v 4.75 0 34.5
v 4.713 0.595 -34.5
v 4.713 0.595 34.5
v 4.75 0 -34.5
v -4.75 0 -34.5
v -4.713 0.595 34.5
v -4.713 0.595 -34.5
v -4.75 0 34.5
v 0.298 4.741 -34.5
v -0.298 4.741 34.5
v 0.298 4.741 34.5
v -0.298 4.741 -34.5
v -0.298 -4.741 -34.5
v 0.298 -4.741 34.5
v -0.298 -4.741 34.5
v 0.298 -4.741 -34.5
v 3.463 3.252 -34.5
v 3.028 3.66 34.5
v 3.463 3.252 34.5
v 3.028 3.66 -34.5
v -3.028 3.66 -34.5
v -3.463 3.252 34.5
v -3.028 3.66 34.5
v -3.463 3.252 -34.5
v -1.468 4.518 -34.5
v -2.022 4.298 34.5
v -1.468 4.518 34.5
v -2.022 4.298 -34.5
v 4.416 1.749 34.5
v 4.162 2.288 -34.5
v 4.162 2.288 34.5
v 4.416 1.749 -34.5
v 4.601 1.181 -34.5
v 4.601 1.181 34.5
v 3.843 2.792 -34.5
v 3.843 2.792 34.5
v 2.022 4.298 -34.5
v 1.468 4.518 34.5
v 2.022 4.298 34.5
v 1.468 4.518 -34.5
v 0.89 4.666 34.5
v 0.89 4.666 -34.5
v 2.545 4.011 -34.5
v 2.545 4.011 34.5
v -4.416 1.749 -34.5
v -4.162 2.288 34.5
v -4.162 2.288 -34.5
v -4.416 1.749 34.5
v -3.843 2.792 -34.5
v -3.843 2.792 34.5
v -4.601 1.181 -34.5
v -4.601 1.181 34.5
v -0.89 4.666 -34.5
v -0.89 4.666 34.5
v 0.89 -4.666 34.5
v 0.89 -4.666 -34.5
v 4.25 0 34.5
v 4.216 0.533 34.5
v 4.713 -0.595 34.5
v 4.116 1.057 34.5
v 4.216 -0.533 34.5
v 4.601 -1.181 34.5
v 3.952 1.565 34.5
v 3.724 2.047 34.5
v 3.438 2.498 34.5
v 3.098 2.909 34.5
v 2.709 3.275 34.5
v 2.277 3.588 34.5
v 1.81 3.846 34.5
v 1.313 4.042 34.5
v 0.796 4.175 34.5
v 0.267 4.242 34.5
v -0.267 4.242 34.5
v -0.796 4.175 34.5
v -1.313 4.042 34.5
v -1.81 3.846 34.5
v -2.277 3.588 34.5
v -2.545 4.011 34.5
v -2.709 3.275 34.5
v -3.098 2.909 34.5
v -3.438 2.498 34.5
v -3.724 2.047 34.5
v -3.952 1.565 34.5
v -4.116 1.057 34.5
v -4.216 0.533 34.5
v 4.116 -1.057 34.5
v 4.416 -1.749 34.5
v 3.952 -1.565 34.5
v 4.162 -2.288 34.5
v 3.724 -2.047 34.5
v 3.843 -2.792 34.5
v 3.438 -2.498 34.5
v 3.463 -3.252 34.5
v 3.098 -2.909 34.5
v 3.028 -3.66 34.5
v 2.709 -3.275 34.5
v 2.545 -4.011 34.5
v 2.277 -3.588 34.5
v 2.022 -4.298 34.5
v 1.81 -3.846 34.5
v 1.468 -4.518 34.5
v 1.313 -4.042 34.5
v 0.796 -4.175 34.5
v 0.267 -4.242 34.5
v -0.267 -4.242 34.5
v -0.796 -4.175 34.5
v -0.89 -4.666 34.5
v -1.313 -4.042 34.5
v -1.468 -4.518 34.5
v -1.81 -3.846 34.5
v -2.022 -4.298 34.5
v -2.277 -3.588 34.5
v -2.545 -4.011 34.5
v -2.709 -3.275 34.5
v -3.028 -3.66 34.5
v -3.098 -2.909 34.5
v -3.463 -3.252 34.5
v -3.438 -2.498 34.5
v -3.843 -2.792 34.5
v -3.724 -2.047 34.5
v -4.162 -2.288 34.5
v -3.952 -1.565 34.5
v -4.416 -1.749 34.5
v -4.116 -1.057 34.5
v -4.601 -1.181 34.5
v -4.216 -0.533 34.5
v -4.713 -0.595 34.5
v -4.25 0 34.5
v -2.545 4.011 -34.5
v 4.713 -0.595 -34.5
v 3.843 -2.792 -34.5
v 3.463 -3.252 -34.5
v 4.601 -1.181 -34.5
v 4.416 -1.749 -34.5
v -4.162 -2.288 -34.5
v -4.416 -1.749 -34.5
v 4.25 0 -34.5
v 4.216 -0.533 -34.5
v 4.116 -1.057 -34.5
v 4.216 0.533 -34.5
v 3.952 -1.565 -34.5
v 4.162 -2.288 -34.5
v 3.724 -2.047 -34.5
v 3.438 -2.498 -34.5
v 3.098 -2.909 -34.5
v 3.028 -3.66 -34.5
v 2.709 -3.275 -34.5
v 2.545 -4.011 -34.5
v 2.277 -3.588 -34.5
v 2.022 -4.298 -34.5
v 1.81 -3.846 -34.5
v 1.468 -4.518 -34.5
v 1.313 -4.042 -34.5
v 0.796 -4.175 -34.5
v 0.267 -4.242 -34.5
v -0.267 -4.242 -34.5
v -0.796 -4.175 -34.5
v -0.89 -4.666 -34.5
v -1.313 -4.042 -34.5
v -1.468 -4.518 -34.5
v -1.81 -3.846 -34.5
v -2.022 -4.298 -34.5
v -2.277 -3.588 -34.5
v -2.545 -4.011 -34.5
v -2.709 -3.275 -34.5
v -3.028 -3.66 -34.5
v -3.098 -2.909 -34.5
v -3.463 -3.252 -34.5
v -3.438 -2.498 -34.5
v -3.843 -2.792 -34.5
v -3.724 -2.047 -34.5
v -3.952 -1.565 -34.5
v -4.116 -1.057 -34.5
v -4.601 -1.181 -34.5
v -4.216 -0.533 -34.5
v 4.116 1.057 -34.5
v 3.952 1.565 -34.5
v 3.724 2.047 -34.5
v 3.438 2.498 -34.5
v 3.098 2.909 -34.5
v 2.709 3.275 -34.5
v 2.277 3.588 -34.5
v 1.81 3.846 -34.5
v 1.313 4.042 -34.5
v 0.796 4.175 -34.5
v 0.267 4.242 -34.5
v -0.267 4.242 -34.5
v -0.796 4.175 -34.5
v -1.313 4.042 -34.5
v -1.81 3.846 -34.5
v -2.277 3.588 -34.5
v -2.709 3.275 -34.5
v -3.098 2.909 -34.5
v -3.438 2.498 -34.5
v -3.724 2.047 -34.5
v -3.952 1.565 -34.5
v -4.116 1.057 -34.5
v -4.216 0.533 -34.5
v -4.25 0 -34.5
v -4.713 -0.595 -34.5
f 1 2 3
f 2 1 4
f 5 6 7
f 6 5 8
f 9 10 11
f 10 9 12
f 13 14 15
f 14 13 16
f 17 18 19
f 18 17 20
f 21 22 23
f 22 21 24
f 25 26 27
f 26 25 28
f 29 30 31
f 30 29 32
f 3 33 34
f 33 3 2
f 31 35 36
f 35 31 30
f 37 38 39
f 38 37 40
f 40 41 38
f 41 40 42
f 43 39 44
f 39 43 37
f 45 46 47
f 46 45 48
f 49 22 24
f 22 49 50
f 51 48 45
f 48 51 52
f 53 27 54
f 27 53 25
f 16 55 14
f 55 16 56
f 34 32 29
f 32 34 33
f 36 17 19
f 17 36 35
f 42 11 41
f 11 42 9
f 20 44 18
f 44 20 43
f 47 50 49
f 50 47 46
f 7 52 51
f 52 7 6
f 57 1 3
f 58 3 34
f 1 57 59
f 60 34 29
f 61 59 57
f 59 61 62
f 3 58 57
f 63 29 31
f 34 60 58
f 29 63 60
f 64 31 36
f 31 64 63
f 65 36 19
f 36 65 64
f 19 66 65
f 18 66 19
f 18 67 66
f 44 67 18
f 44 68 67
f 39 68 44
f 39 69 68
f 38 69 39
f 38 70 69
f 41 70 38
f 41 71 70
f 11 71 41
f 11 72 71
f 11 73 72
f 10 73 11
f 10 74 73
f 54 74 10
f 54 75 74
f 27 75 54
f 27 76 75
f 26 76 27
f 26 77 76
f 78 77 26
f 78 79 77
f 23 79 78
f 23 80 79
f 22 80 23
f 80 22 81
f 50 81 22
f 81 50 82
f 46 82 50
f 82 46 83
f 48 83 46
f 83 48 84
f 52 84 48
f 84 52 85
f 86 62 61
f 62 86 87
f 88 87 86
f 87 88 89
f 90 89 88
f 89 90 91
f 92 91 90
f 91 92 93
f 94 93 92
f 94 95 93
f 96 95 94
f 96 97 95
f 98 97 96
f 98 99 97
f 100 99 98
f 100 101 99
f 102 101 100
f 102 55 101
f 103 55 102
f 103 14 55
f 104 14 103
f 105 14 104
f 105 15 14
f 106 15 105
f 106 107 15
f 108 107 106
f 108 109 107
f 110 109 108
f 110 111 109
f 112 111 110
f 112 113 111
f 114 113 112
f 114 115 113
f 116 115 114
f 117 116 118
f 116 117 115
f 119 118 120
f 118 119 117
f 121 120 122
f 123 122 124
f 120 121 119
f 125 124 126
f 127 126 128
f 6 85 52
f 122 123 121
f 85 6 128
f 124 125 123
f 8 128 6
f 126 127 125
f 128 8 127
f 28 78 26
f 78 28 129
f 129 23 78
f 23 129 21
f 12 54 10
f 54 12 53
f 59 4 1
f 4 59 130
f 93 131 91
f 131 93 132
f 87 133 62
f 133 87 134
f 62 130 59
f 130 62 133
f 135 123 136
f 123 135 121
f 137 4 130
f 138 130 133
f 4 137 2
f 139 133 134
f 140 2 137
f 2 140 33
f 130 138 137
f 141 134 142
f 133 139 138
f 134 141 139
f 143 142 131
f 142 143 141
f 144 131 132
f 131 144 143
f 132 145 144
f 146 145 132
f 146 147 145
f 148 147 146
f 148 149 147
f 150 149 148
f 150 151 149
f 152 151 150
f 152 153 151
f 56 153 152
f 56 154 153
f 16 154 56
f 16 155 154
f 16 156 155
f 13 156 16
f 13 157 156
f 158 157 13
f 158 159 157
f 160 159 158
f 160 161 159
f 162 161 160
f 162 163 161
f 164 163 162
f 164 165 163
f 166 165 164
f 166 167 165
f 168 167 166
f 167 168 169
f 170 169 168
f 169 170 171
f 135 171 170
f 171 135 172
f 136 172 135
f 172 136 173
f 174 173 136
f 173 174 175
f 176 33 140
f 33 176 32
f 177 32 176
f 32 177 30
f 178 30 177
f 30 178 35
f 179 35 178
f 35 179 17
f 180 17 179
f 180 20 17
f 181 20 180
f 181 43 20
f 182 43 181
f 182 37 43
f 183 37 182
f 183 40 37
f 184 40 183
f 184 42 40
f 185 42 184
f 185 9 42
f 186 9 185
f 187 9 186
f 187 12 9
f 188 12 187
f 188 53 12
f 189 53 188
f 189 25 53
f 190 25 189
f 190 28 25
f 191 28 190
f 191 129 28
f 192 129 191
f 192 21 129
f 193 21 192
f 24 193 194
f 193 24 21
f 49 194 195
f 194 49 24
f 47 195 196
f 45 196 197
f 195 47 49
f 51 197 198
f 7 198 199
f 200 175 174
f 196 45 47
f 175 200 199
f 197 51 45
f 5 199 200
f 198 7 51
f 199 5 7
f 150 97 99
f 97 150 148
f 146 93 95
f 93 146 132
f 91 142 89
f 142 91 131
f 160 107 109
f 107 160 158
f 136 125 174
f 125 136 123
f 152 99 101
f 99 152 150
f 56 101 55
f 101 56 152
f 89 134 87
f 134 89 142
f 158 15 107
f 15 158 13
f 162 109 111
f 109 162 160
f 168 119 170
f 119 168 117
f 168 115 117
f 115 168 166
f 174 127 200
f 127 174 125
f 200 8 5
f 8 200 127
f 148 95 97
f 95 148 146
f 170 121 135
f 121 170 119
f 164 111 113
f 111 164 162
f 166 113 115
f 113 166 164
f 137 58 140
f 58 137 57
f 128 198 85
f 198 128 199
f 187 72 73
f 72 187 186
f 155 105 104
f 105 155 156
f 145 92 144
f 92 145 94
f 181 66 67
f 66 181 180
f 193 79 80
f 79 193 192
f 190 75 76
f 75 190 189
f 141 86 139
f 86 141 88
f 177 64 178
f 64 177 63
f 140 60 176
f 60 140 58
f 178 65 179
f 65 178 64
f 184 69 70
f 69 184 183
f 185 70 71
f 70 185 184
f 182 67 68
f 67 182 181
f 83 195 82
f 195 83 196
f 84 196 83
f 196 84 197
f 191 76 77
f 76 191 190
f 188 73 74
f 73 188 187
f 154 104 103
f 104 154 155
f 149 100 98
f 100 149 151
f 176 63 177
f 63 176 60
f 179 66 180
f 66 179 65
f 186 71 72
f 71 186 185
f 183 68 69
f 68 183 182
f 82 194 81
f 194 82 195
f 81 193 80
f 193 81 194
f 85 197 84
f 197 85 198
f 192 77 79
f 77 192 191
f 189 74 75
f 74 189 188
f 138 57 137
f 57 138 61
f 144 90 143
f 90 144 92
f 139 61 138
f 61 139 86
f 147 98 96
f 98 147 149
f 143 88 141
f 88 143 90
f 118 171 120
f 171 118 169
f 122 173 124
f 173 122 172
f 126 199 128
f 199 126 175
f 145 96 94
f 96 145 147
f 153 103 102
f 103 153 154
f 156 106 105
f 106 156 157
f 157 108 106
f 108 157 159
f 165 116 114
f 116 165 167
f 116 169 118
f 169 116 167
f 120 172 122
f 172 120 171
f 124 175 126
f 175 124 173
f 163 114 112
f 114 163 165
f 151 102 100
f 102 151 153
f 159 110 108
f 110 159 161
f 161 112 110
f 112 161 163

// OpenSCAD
$fn = 50;


difference() {
	union() {
		translate(v = [0, 0, -34.5000000000]) {
			cylinder(h = 69, r = 4.7500000000);
		}
	}
	union() {
		translate(v = [0, 0, -100.0000000000]) {
			cylinder(h = 200, r = 4.2500000000);
		}
	}
}
